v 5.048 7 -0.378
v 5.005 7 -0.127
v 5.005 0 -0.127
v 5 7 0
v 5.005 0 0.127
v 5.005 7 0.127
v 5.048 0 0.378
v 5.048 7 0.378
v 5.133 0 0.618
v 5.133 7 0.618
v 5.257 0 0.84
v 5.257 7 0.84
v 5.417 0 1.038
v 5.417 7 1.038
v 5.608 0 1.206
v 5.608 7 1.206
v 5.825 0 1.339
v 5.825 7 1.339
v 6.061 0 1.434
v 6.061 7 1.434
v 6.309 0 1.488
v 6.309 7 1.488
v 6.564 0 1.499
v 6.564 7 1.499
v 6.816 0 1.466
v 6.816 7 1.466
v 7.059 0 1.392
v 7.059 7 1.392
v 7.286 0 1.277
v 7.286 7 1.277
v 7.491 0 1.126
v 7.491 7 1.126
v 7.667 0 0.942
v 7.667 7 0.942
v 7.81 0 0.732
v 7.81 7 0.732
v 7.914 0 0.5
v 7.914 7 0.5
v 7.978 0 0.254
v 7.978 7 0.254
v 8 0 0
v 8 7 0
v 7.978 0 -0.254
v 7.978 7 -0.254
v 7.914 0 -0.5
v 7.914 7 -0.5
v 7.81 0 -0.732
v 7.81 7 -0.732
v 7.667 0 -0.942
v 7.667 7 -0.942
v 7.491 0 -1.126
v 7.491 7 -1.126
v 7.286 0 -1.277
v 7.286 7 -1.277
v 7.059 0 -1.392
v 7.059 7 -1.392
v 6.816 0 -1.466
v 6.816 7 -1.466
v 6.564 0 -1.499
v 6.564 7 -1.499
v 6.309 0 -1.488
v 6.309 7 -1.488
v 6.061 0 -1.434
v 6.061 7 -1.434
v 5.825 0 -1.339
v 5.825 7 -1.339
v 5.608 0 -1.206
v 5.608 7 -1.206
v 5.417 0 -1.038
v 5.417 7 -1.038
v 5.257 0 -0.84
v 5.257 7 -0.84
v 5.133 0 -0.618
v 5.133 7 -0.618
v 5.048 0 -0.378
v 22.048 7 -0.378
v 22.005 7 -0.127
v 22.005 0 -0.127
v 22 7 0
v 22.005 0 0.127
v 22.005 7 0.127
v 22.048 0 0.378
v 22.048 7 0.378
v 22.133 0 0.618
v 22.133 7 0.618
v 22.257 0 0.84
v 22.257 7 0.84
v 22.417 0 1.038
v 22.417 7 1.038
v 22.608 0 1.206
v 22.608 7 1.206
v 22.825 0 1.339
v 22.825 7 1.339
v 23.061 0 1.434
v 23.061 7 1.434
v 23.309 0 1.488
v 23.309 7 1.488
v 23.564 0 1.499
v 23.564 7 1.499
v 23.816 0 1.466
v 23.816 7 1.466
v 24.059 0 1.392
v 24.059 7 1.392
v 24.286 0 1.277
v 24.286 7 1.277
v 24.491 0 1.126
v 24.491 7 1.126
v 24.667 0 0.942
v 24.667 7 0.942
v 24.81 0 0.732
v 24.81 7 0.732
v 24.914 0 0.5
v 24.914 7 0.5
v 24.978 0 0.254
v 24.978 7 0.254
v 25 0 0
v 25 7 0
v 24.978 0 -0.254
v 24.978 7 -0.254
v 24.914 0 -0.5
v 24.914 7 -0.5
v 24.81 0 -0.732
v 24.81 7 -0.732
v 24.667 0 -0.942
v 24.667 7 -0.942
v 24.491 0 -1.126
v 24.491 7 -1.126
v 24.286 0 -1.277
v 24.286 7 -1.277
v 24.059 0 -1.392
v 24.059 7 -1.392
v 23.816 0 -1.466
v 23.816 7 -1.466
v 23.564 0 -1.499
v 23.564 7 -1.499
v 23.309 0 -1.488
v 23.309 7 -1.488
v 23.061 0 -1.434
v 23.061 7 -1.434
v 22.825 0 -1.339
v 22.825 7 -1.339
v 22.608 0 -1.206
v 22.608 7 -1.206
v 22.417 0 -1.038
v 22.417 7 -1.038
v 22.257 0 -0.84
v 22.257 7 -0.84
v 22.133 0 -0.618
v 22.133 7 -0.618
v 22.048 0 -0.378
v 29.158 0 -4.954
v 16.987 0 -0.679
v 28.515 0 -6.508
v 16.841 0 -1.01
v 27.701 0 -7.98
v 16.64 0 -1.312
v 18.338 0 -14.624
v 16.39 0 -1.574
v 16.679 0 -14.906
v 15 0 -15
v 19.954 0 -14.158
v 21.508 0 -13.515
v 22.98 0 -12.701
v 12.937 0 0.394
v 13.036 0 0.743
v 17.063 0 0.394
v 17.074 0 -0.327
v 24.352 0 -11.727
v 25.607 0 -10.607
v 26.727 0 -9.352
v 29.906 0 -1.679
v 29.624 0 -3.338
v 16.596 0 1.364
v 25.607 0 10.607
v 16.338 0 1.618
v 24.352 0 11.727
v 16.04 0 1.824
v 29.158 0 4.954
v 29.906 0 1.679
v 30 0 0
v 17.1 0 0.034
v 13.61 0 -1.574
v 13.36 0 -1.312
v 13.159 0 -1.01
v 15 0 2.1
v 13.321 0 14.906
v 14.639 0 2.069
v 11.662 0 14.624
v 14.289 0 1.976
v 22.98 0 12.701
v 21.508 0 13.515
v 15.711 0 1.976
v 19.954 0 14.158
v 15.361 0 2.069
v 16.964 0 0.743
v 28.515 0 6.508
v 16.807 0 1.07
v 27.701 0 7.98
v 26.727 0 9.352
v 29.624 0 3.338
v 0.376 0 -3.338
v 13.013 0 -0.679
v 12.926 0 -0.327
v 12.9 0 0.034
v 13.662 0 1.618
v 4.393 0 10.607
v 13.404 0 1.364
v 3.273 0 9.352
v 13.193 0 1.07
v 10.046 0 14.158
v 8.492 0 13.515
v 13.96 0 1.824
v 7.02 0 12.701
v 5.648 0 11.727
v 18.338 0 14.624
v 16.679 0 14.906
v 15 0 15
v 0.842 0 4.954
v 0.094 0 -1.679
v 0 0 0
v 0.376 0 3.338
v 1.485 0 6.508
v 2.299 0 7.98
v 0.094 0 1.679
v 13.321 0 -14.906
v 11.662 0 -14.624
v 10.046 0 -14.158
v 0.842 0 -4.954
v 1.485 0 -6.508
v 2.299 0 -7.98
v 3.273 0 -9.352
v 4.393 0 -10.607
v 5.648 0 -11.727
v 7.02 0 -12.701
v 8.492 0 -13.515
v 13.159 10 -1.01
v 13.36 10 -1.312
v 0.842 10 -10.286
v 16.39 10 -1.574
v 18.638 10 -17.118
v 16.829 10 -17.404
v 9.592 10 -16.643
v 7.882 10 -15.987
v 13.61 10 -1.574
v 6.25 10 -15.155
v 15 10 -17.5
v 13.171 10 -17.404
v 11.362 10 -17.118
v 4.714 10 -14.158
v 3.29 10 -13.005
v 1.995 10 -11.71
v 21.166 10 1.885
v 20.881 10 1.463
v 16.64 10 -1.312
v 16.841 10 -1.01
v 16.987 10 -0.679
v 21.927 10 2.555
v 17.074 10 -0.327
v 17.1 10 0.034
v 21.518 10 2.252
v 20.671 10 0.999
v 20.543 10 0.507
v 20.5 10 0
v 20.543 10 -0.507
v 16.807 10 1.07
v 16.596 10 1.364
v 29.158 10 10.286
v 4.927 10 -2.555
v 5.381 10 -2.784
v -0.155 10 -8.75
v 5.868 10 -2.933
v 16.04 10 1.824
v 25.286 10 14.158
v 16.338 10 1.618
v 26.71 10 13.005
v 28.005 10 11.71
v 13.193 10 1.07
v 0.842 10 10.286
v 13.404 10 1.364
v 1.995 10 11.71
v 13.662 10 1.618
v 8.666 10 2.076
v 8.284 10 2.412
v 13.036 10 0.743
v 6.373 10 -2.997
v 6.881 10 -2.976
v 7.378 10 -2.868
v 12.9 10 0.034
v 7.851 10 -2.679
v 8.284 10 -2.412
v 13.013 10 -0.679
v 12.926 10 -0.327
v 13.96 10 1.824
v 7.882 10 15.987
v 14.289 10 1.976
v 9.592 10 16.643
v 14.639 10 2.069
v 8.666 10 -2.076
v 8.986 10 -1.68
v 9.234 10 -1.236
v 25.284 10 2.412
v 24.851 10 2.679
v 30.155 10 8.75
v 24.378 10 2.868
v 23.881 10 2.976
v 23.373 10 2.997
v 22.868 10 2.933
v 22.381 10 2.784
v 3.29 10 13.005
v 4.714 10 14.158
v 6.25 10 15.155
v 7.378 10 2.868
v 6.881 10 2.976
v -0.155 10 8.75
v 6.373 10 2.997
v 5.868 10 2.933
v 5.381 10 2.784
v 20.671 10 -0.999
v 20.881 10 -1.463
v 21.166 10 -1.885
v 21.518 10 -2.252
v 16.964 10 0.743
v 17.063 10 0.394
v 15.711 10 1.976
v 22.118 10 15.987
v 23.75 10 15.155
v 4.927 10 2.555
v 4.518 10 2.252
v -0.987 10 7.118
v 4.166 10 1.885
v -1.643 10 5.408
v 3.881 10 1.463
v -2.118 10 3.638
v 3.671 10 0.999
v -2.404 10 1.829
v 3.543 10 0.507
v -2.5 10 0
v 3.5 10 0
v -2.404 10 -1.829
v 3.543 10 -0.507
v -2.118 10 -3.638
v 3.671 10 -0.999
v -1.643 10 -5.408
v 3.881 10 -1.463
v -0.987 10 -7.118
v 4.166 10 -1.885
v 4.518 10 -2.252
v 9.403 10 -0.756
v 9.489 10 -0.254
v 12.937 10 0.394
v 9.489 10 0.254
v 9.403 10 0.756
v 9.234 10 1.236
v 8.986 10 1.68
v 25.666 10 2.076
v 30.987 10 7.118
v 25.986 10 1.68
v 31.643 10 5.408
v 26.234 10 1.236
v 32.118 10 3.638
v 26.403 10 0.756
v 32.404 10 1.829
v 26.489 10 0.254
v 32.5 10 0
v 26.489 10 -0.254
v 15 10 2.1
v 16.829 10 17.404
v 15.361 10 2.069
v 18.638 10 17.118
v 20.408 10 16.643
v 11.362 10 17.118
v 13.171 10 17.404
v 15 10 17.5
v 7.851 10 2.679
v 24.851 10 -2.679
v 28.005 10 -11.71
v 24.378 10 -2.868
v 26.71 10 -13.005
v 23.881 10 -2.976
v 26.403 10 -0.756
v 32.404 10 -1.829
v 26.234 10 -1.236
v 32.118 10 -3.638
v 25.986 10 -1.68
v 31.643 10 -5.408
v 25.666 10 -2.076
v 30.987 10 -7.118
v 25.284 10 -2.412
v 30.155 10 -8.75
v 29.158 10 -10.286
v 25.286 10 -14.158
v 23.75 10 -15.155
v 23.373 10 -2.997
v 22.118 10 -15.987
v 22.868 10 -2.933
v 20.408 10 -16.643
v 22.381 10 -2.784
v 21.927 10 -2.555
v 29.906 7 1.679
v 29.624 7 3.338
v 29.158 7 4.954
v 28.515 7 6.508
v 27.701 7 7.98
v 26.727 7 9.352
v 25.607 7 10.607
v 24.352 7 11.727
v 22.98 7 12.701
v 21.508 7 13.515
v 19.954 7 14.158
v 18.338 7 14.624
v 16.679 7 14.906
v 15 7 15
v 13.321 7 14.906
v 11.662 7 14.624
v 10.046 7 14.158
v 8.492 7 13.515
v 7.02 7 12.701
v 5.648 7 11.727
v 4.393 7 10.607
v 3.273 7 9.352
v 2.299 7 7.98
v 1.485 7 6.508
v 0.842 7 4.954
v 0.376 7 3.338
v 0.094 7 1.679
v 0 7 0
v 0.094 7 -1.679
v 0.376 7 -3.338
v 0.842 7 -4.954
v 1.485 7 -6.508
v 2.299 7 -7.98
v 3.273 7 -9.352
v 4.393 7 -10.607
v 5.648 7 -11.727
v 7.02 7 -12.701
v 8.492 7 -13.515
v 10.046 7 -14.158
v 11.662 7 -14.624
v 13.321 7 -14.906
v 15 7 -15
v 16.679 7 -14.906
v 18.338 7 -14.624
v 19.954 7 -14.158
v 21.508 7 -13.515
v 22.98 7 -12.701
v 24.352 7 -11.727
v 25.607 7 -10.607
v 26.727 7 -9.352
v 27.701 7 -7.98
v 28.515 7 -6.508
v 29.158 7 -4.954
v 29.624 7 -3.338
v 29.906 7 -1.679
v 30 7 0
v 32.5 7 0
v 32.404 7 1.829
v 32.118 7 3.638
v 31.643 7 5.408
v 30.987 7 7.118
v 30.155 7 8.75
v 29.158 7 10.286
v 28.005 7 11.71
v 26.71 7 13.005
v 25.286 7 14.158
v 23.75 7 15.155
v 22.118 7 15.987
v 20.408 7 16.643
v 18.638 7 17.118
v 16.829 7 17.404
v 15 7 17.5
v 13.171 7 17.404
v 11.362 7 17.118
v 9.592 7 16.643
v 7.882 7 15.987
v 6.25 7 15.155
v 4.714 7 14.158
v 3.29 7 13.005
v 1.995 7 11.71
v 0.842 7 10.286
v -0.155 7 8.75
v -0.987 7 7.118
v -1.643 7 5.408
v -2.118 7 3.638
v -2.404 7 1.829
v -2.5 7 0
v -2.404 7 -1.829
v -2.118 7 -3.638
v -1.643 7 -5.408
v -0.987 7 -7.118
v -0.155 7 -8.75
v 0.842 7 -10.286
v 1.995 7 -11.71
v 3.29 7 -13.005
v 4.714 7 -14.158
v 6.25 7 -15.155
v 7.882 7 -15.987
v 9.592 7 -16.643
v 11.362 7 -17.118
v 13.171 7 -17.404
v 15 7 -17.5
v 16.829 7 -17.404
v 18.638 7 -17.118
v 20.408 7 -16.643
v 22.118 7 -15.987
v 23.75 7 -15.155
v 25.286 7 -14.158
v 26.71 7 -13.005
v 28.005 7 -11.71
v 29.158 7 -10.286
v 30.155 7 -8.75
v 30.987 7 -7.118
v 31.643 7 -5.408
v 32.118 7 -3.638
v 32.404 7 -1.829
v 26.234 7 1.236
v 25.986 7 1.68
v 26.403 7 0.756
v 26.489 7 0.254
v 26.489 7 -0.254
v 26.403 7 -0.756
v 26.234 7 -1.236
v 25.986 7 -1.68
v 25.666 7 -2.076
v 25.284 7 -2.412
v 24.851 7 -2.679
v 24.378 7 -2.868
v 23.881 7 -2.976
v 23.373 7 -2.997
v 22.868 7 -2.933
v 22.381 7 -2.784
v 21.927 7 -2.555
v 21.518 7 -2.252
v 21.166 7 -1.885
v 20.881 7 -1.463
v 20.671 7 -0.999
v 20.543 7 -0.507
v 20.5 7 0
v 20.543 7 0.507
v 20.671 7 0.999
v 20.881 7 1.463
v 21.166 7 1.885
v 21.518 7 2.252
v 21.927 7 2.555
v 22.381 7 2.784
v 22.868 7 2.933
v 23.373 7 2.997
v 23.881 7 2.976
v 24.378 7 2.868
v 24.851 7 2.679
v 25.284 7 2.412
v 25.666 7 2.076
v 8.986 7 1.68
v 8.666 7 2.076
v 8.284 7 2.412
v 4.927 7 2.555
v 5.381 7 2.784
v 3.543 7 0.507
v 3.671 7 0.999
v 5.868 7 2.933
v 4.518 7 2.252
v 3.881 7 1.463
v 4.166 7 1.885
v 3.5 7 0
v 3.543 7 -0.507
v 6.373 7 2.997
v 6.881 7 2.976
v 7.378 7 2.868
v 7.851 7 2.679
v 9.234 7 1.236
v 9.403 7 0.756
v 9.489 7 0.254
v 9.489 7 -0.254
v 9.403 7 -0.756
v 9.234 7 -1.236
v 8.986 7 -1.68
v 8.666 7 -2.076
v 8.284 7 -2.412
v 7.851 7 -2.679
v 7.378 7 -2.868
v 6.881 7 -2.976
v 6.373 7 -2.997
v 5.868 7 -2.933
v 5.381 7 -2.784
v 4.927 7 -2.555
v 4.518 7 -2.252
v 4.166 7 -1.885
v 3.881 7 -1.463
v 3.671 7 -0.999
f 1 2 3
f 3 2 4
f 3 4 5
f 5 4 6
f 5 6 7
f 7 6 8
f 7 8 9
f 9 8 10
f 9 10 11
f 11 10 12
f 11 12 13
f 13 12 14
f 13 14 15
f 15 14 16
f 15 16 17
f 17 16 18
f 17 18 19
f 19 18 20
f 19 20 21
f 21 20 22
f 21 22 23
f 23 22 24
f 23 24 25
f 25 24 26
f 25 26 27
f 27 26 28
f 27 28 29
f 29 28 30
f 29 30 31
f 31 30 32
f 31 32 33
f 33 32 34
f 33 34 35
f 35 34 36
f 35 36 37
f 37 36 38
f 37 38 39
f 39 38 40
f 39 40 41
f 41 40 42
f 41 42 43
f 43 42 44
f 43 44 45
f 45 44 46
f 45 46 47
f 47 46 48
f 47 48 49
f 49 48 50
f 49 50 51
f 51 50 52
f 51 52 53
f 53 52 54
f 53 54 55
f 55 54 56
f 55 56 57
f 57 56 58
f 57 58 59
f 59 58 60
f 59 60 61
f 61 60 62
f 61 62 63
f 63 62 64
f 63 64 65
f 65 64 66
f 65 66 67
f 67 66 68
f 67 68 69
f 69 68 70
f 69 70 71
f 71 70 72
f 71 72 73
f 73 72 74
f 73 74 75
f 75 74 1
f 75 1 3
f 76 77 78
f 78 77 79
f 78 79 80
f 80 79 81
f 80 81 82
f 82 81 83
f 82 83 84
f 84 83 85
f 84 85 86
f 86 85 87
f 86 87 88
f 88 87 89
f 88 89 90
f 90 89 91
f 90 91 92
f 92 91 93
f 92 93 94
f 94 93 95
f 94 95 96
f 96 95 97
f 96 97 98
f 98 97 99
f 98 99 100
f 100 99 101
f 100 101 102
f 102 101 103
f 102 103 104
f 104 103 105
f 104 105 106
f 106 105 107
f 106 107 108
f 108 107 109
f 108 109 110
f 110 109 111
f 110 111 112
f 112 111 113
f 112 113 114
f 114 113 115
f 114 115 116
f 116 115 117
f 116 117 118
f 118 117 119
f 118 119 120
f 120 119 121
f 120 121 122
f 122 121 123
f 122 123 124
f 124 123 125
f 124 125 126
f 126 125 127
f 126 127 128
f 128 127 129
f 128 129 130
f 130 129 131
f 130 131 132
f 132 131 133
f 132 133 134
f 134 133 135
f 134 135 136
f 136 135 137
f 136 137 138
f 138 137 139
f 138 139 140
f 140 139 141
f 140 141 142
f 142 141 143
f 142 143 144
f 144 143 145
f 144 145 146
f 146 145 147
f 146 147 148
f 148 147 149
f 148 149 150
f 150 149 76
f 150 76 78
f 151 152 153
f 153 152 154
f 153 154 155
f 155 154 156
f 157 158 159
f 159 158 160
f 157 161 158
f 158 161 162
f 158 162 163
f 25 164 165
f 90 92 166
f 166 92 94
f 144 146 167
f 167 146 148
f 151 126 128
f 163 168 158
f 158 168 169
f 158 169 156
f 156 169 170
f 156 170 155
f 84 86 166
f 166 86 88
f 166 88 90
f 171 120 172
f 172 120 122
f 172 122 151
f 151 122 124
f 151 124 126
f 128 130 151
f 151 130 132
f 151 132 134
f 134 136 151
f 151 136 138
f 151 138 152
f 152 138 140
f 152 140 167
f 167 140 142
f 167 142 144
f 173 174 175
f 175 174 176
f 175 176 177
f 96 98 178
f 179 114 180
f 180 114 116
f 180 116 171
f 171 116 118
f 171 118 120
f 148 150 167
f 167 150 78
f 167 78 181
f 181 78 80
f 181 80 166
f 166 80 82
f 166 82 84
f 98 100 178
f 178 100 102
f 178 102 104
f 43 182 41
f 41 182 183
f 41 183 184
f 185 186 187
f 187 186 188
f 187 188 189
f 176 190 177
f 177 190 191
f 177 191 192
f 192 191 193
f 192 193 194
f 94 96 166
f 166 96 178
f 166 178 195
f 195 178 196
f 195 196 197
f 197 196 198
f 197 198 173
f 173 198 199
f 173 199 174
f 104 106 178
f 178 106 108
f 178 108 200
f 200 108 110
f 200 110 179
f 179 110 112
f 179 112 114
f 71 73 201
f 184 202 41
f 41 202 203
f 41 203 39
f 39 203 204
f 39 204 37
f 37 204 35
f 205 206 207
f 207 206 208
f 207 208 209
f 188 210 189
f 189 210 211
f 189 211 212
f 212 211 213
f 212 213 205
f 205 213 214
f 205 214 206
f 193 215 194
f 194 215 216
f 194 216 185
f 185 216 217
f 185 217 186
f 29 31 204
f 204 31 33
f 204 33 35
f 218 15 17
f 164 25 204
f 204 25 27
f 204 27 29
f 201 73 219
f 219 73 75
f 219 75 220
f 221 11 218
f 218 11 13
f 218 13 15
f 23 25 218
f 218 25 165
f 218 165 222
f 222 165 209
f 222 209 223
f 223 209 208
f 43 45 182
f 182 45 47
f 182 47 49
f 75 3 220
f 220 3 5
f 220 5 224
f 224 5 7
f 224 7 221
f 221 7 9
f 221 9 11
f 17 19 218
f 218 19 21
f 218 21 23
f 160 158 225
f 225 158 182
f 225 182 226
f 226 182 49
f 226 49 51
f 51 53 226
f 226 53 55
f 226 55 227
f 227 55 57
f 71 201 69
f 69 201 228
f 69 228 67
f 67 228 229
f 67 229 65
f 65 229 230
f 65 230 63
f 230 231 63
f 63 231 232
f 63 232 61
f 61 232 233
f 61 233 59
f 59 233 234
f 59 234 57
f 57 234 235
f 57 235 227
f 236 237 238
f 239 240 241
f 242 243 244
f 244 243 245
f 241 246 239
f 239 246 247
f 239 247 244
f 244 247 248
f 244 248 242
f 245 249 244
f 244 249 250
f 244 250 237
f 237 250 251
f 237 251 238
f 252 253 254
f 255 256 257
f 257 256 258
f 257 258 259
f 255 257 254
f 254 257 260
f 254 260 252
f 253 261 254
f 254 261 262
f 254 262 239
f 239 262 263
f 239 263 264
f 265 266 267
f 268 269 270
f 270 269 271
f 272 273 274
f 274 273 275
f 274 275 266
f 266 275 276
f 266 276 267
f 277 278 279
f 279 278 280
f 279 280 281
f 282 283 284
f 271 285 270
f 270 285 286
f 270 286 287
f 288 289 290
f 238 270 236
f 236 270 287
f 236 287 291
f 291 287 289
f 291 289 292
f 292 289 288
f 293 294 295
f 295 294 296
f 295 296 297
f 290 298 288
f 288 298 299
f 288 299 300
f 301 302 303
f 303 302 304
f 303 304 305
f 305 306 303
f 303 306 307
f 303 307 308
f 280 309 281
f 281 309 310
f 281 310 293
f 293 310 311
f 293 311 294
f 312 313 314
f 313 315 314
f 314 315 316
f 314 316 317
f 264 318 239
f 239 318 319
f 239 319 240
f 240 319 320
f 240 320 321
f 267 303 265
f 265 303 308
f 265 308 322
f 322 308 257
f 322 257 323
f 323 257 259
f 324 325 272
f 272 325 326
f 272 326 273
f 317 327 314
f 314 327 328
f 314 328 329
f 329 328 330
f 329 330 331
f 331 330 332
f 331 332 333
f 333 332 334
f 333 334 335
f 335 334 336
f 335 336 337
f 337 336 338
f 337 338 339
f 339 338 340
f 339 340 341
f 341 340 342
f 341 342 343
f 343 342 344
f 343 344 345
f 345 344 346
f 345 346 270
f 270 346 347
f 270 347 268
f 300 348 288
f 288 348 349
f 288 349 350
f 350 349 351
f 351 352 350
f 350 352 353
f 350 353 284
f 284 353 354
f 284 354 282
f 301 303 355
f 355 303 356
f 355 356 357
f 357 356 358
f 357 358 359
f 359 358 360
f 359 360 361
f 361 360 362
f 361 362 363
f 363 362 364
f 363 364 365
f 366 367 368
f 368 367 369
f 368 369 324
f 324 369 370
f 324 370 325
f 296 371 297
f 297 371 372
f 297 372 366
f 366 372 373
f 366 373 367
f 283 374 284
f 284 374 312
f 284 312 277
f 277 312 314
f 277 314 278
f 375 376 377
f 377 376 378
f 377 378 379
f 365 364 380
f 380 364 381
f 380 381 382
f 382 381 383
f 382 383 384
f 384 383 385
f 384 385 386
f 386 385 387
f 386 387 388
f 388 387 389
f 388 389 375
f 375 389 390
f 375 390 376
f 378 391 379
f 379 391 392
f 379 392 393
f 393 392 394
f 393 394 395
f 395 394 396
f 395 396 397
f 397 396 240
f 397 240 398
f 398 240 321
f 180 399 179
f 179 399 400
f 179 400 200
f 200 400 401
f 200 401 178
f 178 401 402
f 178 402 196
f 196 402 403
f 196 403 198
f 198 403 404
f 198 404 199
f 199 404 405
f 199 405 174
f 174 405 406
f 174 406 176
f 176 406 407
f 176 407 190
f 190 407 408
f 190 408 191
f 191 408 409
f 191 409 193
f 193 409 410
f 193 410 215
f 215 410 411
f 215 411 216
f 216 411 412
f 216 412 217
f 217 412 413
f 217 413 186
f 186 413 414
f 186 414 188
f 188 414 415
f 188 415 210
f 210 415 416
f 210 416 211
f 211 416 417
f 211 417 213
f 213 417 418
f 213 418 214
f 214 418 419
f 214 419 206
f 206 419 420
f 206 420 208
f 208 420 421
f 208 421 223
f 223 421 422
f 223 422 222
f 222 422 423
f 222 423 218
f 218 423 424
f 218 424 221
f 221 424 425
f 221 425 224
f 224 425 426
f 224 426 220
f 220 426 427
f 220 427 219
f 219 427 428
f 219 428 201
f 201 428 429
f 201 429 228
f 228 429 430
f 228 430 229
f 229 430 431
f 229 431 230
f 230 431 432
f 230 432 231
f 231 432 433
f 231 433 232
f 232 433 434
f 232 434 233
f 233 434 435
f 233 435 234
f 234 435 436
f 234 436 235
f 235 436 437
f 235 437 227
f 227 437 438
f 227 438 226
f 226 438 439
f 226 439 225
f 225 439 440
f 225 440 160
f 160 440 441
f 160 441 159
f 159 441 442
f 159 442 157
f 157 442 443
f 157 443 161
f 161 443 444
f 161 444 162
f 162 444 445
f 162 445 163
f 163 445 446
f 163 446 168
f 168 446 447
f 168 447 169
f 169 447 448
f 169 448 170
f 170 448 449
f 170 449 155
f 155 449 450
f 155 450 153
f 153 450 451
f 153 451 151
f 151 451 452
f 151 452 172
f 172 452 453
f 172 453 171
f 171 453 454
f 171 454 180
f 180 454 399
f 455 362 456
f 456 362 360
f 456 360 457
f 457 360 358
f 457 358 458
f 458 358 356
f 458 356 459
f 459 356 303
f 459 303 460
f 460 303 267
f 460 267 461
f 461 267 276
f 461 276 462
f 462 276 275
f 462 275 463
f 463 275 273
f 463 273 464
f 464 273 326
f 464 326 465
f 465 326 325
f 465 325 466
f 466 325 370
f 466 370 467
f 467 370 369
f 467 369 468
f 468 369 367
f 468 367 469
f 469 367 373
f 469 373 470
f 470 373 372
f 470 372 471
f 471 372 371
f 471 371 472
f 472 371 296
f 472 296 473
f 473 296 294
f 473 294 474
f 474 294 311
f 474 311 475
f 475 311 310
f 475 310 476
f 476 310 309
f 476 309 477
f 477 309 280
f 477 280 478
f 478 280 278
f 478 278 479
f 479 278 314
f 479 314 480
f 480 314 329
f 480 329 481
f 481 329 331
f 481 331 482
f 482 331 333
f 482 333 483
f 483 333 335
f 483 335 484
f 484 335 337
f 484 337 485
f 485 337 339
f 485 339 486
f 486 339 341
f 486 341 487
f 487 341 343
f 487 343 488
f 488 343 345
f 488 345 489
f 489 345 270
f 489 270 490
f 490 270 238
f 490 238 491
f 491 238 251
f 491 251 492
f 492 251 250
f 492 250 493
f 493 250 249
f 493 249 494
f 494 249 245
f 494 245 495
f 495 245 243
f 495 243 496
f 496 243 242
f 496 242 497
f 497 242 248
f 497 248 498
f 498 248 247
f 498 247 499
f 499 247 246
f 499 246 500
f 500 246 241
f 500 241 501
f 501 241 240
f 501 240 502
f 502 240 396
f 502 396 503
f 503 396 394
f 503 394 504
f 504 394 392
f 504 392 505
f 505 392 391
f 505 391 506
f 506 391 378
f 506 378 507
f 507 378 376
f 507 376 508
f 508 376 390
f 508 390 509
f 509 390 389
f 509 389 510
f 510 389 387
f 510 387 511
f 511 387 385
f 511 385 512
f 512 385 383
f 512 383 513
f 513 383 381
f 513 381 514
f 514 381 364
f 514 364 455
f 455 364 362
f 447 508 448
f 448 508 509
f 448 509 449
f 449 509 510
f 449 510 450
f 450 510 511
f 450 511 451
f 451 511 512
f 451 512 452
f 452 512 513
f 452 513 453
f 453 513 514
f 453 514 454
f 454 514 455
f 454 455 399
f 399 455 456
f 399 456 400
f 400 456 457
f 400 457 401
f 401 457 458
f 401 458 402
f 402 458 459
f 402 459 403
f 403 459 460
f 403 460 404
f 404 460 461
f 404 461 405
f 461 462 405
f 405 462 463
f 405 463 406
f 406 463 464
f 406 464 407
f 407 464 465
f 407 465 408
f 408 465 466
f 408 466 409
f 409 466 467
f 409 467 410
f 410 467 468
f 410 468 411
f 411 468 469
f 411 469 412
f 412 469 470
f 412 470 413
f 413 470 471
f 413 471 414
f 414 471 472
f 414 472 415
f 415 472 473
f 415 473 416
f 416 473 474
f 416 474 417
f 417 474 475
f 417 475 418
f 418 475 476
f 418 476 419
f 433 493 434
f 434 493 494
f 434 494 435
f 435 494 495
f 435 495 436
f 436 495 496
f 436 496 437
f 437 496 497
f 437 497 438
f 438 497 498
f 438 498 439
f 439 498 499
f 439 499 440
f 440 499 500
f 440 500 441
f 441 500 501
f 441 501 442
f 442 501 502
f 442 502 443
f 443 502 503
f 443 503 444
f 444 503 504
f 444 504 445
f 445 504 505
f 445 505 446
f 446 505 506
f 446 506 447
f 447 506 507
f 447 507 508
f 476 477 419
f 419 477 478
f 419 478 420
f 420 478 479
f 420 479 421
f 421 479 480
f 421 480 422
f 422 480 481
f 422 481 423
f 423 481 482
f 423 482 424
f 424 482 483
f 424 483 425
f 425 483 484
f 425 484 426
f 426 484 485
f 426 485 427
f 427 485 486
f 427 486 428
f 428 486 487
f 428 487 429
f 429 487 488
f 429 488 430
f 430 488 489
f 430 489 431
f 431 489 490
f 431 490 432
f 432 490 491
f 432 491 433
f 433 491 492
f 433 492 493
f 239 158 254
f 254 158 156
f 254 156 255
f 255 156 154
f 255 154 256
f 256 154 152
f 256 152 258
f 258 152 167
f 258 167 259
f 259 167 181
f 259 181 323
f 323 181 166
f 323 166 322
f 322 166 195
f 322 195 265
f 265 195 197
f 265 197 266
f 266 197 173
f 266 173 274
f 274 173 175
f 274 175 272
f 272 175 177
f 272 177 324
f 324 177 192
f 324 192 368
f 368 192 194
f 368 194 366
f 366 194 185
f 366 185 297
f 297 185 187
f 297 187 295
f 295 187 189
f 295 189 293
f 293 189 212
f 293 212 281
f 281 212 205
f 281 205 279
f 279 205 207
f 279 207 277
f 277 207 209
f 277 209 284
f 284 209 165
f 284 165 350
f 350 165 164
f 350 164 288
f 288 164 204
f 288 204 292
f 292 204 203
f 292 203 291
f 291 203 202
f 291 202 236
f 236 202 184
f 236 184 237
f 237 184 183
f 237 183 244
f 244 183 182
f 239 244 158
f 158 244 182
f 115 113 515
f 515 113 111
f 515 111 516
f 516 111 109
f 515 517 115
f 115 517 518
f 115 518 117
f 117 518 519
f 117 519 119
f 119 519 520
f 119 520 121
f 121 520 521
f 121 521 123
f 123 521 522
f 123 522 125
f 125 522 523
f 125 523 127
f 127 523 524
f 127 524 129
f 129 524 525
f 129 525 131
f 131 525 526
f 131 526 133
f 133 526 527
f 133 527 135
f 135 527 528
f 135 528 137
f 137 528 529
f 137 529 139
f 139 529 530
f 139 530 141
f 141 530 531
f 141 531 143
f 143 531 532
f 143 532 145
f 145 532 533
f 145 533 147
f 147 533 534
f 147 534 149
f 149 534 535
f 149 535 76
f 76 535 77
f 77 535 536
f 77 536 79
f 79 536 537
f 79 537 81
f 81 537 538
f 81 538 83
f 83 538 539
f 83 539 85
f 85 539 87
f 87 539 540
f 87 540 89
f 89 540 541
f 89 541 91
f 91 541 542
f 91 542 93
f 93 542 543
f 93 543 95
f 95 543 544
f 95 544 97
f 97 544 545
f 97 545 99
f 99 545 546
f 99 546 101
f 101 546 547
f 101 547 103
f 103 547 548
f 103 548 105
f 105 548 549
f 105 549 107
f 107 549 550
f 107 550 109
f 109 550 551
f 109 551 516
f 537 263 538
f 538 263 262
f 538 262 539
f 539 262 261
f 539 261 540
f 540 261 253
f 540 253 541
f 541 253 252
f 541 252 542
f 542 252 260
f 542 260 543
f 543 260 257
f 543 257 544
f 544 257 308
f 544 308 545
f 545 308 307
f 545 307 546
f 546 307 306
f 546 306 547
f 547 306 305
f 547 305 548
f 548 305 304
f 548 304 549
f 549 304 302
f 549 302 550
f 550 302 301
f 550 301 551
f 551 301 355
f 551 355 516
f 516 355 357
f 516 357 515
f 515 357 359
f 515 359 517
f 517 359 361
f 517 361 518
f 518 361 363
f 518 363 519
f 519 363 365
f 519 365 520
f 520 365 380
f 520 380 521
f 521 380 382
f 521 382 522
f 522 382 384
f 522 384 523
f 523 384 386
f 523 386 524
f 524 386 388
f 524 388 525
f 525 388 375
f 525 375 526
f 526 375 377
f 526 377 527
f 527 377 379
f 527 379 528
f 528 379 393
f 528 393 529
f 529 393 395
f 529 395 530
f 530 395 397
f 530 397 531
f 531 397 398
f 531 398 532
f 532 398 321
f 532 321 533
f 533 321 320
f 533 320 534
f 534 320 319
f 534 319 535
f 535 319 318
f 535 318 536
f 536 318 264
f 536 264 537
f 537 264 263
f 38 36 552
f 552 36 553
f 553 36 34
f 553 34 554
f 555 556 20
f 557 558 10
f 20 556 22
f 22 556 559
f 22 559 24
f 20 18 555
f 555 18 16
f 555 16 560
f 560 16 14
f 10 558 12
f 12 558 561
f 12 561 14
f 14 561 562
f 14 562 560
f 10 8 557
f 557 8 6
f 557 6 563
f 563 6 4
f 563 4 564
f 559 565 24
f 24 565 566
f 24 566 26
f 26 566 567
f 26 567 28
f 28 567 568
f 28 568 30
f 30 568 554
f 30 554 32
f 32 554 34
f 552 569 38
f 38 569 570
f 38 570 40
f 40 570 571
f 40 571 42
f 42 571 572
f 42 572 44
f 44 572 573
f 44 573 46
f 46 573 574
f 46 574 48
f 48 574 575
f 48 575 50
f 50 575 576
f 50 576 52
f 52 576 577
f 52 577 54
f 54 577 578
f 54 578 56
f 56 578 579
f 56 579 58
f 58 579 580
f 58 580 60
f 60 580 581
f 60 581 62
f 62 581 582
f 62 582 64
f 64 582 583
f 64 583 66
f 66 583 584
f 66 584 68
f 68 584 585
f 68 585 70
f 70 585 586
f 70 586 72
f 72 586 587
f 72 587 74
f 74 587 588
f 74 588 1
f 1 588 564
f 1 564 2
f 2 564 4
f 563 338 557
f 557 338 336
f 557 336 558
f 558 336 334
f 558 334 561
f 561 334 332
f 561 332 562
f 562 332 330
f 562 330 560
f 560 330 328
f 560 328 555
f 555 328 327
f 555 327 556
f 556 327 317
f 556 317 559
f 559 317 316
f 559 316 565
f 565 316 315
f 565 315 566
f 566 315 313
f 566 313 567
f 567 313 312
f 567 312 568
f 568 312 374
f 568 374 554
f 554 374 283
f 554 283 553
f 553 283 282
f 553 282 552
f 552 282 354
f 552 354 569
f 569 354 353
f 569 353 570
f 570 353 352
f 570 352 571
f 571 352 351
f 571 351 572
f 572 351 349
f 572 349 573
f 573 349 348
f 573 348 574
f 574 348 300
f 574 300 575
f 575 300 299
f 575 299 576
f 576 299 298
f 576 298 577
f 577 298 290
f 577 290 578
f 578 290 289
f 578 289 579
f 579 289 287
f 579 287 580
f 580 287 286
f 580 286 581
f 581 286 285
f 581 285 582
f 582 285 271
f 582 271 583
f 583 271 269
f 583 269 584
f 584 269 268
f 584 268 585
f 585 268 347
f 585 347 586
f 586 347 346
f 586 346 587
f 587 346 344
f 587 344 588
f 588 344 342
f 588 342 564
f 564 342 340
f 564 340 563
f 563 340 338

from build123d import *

# Parameters (mm, degrees)
ESBO_O2_R             = 1.5
CORTE_EXTRUS_O1_DEPTH = 10
ESBO_O3_R             = 3
CORTE_EXTRUS_O2_DEPTH = 3


with BuildPart() as part:
    # Esboço1 → Revolução2 (revolve)
    with BuildSketch(Plane.XY, mode=Mode.PRIVATE) as revolu_o2_sk:
        Polygon((0, 7), (-2.5, 7), (-2.5, 10), (15, 10), (15, 0), (0, 0), align=None)
    revolve(revolu_o2_sk.sketch.rotate(Axis((15, 0, 0), (0, 1, 0)), 180), axis=Axis((15, 0, 0), (0, 1, 0)))

    # Esboço2 → Corte-extrusão1 (cut)
    with BuildSketch(Plane(origin=(0, 0, 0), x_dir=(-1, 0, 0), z_dir=(0, -1, 0))):
        with Locations(Location((-23.5, 0, 0), (0, 0, 180))):
            Circle(ESBO_O2_R)
        with Locations(Location((-6.5, 0, 0), (0, 0, 180))):
            Circle(ESBO_O2_R)
        with BuildLine():
            Line((-16.39, 1.574134683), (-13.61, 1.574134683))
            ThreePointArc((-13.61, 1.574134683), (-15, -2.1), (-16.39, 1.574134683))
        make_face()
    extrude(amount=-CORTE_EXTRUS_O1_DEPTH, mode=Mode.SUBTRACT)

    # Esboço3 → Corte-extrusão2 (cut)
    with BuildSketch(Plane(origin=(0, 10, 0), x_dir=(1, 0, 0), z_dir=(0, 1, 0))):
        with Locations(Location((6.5, 0, 0), (0, 0, 180))):
            Circle(ESBO_O3_R)
        with Locations(Location((23.5, 0, 0), (0, 0, 180))):
            Circle(ESBO_O3_R)
    extrude(amount=-CORTE_EXTRUS_O2_DEPTH, mode=Mode.SUBTRACT)


solid = part.part
